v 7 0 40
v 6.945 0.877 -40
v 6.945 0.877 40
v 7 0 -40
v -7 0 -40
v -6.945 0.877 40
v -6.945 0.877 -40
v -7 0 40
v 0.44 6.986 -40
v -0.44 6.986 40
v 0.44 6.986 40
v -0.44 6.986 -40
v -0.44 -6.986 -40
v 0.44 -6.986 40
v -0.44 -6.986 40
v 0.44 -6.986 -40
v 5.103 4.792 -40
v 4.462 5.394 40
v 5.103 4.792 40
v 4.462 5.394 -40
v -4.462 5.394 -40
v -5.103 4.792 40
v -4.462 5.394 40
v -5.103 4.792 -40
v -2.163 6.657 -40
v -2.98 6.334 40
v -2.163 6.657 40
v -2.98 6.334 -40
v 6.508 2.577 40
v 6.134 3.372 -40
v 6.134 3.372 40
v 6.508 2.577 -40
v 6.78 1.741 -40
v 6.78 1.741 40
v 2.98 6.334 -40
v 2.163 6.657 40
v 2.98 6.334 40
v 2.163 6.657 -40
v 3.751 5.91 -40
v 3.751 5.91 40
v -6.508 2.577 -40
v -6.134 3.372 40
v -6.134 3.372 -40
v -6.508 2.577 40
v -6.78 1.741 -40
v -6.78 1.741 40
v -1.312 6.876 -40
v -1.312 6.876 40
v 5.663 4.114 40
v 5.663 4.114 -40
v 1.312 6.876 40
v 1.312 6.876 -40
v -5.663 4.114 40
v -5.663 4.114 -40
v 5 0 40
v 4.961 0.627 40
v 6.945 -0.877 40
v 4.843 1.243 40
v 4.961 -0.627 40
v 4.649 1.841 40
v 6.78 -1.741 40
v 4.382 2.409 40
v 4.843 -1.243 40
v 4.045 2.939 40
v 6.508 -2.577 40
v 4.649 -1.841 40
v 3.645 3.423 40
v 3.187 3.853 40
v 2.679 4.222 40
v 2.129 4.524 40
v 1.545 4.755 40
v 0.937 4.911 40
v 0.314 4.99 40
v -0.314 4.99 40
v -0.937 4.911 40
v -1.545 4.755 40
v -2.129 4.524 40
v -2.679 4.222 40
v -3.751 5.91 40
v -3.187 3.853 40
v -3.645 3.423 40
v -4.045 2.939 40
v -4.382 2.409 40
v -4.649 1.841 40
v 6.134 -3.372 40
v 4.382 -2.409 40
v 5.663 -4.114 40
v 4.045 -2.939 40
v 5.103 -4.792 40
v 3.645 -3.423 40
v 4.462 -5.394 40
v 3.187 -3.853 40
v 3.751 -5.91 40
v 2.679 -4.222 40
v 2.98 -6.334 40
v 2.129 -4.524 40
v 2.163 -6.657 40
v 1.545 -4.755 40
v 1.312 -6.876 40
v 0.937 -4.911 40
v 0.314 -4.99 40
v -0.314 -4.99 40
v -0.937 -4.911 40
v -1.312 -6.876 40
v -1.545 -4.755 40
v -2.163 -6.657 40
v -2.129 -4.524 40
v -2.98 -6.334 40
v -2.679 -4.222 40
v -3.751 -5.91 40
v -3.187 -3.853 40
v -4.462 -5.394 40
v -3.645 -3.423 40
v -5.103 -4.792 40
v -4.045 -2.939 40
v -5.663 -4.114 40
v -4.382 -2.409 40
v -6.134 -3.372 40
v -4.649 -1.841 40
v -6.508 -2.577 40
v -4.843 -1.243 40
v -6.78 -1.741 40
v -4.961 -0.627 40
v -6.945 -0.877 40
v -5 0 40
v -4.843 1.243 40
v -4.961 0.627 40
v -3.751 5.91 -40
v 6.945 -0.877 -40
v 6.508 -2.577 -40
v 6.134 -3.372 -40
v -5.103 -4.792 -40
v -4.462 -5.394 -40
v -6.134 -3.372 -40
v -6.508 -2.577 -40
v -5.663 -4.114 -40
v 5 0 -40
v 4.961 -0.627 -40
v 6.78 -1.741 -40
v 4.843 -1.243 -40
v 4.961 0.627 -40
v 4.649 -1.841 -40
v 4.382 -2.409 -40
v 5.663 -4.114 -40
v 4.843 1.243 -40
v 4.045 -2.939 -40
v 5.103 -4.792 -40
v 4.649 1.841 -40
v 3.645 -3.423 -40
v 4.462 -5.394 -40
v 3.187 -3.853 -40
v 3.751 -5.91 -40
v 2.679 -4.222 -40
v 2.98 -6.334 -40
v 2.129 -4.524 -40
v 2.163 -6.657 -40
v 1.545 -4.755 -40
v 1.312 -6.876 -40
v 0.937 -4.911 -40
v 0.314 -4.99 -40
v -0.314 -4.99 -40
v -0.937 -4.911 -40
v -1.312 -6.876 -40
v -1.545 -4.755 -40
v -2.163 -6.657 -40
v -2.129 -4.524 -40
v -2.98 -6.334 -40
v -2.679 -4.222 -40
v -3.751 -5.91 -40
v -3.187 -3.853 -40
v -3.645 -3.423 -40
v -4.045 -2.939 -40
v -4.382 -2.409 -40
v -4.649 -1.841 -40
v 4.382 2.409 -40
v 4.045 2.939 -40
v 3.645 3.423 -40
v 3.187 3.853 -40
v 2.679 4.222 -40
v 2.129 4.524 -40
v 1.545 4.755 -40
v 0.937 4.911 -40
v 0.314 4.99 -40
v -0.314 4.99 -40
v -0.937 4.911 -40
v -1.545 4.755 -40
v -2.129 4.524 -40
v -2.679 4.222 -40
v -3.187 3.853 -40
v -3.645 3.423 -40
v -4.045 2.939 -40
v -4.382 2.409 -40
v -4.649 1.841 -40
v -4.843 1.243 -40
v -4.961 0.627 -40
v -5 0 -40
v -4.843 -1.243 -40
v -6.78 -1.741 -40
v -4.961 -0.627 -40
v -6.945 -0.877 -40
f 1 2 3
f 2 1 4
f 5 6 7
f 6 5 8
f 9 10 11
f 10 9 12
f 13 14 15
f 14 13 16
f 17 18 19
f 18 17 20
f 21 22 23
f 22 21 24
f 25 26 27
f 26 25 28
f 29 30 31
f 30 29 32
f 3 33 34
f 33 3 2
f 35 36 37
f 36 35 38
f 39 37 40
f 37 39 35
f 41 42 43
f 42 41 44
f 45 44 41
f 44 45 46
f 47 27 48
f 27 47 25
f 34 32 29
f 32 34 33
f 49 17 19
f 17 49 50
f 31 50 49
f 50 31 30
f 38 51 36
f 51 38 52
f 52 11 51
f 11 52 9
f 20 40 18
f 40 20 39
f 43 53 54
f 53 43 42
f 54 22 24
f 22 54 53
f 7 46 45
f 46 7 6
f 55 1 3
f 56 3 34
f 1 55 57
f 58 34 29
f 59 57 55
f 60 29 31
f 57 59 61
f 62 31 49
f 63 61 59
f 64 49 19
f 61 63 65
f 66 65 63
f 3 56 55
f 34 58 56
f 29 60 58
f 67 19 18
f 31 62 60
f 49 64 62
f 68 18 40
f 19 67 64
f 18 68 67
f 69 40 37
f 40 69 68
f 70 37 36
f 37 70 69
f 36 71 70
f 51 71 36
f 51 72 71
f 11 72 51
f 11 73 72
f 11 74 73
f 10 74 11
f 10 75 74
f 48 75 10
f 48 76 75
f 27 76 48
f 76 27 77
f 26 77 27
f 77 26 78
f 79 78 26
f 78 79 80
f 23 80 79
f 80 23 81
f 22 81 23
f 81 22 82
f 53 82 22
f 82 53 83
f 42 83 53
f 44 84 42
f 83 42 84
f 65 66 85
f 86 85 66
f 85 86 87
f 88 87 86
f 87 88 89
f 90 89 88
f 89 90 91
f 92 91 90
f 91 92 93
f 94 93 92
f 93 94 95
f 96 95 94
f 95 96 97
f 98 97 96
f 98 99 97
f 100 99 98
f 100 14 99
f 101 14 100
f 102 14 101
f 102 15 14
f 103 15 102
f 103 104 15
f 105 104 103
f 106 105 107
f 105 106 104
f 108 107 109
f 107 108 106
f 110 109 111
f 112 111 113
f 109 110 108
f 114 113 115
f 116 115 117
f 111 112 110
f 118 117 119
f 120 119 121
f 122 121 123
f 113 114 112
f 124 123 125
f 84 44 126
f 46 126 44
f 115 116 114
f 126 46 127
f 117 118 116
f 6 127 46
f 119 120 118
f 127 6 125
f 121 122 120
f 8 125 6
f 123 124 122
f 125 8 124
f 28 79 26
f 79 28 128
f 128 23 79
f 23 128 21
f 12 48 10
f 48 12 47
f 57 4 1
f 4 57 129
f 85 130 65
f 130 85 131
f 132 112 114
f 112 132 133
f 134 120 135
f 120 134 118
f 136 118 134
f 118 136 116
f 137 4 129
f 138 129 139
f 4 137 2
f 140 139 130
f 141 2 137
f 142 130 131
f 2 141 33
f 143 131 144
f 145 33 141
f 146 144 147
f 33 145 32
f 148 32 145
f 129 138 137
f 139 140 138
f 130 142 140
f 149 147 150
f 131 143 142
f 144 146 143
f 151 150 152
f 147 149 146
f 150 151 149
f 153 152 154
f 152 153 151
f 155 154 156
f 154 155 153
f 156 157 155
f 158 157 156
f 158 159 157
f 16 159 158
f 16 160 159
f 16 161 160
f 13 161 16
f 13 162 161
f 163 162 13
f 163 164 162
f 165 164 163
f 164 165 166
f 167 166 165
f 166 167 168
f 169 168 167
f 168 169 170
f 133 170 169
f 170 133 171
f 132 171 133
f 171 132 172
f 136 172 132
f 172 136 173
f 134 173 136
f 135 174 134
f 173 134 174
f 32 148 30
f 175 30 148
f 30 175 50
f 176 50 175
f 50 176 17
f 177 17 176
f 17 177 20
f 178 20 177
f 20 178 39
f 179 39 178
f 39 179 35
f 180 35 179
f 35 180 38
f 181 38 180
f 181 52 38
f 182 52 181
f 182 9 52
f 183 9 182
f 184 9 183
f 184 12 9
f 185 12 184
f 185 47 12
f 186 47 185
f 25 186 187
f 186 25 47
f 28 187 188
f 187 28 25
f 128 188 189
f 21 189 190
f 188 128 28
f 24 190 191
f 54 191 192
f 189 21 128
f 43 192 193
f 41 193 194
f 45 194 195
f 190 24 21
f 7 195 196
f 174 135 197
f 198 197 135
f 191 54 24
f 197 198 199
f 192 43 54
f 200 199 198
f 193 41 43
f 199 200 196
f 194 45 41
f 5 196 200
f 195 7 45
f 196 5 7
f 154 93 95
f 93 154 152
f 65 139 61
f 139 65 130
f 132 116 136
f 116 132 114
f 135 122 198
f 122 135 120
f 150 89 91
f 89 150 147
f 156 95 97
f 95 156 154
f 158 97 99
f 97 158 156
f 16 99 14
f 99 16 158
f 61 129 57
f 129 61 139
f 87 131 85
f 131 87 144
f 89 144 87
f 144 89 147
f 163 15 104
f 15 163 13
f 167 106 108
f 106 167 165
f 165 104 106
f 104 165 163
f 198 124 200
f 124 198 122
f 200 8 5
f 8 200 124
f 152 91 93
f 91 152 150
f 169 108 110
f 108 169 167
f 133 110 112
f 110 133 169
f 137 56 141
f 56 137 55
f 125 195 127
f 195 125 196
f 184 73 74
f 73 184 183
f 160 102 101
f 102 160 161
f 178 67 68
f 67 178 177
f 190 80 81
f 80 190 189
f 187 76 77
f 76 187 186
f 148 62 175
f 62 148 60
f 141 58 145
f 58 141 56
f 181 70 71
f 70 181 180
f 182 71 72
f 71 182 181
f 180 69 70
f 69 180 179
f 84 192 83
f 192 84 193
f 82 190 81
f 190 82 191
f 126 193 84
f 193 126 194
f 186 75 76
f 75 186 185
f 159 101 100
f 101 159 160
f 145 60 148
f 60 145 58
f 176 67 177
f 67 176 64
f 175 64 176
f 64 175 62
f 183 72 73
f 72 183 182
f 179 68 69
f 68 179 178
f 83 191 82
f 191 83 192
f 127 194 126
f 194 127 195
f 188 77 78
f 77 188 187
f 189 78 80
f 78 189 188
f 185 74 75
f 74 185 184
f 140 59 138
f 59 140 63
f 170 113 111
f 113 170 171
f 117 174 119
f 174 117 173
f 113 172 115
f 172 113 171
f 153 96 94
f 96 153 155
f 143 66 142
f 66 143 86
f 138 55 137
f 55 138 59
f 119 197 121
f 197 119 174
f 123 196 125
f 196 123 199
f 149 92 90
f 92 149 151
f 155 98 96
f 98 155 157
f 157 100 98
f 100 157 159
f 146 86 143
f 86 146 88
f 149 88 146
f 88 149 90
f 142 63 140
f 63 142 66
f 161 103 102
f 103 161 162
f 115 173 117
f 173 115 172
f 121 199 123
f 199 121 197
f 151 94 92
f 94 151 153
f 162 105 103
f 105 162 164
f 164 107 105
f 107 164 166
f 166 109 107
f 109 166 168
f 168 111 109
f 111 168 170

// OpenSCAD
$fn = 50;


difference() {
	union() {
		translate(v = [0, 0, -40.0000000000]) {
			cylinder(h = 80, r = 7.0000000000);
		}
	}
	union() {
		translate(v = [0, 0, -100.0000000000]) {
			cylinder(h = 200, r = 5);
		}
	}
}
